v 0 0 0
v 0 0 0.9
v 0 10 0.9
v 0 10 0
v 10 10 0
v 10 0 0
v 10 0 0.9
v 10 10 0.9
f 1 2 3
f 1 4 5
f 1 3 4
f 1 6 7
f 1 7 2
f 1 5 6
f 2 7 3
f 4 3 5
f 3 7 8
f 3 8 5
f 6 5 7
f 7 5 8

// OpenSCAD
/* Warning, this is a very basic generator with a lot of approximation 
input data : [VQFN, 3WW, 10x10x0.9mm, 132, , C, C04-00575C]
generated by com.zoubworld.electronics.cad.model3d.Basic
Date : Sun Feb 15 10:50:49 CET 2026
*/

//body
color("black")
translate([0,0,0])
cube([10.0,10.0,0.9], center=false);
